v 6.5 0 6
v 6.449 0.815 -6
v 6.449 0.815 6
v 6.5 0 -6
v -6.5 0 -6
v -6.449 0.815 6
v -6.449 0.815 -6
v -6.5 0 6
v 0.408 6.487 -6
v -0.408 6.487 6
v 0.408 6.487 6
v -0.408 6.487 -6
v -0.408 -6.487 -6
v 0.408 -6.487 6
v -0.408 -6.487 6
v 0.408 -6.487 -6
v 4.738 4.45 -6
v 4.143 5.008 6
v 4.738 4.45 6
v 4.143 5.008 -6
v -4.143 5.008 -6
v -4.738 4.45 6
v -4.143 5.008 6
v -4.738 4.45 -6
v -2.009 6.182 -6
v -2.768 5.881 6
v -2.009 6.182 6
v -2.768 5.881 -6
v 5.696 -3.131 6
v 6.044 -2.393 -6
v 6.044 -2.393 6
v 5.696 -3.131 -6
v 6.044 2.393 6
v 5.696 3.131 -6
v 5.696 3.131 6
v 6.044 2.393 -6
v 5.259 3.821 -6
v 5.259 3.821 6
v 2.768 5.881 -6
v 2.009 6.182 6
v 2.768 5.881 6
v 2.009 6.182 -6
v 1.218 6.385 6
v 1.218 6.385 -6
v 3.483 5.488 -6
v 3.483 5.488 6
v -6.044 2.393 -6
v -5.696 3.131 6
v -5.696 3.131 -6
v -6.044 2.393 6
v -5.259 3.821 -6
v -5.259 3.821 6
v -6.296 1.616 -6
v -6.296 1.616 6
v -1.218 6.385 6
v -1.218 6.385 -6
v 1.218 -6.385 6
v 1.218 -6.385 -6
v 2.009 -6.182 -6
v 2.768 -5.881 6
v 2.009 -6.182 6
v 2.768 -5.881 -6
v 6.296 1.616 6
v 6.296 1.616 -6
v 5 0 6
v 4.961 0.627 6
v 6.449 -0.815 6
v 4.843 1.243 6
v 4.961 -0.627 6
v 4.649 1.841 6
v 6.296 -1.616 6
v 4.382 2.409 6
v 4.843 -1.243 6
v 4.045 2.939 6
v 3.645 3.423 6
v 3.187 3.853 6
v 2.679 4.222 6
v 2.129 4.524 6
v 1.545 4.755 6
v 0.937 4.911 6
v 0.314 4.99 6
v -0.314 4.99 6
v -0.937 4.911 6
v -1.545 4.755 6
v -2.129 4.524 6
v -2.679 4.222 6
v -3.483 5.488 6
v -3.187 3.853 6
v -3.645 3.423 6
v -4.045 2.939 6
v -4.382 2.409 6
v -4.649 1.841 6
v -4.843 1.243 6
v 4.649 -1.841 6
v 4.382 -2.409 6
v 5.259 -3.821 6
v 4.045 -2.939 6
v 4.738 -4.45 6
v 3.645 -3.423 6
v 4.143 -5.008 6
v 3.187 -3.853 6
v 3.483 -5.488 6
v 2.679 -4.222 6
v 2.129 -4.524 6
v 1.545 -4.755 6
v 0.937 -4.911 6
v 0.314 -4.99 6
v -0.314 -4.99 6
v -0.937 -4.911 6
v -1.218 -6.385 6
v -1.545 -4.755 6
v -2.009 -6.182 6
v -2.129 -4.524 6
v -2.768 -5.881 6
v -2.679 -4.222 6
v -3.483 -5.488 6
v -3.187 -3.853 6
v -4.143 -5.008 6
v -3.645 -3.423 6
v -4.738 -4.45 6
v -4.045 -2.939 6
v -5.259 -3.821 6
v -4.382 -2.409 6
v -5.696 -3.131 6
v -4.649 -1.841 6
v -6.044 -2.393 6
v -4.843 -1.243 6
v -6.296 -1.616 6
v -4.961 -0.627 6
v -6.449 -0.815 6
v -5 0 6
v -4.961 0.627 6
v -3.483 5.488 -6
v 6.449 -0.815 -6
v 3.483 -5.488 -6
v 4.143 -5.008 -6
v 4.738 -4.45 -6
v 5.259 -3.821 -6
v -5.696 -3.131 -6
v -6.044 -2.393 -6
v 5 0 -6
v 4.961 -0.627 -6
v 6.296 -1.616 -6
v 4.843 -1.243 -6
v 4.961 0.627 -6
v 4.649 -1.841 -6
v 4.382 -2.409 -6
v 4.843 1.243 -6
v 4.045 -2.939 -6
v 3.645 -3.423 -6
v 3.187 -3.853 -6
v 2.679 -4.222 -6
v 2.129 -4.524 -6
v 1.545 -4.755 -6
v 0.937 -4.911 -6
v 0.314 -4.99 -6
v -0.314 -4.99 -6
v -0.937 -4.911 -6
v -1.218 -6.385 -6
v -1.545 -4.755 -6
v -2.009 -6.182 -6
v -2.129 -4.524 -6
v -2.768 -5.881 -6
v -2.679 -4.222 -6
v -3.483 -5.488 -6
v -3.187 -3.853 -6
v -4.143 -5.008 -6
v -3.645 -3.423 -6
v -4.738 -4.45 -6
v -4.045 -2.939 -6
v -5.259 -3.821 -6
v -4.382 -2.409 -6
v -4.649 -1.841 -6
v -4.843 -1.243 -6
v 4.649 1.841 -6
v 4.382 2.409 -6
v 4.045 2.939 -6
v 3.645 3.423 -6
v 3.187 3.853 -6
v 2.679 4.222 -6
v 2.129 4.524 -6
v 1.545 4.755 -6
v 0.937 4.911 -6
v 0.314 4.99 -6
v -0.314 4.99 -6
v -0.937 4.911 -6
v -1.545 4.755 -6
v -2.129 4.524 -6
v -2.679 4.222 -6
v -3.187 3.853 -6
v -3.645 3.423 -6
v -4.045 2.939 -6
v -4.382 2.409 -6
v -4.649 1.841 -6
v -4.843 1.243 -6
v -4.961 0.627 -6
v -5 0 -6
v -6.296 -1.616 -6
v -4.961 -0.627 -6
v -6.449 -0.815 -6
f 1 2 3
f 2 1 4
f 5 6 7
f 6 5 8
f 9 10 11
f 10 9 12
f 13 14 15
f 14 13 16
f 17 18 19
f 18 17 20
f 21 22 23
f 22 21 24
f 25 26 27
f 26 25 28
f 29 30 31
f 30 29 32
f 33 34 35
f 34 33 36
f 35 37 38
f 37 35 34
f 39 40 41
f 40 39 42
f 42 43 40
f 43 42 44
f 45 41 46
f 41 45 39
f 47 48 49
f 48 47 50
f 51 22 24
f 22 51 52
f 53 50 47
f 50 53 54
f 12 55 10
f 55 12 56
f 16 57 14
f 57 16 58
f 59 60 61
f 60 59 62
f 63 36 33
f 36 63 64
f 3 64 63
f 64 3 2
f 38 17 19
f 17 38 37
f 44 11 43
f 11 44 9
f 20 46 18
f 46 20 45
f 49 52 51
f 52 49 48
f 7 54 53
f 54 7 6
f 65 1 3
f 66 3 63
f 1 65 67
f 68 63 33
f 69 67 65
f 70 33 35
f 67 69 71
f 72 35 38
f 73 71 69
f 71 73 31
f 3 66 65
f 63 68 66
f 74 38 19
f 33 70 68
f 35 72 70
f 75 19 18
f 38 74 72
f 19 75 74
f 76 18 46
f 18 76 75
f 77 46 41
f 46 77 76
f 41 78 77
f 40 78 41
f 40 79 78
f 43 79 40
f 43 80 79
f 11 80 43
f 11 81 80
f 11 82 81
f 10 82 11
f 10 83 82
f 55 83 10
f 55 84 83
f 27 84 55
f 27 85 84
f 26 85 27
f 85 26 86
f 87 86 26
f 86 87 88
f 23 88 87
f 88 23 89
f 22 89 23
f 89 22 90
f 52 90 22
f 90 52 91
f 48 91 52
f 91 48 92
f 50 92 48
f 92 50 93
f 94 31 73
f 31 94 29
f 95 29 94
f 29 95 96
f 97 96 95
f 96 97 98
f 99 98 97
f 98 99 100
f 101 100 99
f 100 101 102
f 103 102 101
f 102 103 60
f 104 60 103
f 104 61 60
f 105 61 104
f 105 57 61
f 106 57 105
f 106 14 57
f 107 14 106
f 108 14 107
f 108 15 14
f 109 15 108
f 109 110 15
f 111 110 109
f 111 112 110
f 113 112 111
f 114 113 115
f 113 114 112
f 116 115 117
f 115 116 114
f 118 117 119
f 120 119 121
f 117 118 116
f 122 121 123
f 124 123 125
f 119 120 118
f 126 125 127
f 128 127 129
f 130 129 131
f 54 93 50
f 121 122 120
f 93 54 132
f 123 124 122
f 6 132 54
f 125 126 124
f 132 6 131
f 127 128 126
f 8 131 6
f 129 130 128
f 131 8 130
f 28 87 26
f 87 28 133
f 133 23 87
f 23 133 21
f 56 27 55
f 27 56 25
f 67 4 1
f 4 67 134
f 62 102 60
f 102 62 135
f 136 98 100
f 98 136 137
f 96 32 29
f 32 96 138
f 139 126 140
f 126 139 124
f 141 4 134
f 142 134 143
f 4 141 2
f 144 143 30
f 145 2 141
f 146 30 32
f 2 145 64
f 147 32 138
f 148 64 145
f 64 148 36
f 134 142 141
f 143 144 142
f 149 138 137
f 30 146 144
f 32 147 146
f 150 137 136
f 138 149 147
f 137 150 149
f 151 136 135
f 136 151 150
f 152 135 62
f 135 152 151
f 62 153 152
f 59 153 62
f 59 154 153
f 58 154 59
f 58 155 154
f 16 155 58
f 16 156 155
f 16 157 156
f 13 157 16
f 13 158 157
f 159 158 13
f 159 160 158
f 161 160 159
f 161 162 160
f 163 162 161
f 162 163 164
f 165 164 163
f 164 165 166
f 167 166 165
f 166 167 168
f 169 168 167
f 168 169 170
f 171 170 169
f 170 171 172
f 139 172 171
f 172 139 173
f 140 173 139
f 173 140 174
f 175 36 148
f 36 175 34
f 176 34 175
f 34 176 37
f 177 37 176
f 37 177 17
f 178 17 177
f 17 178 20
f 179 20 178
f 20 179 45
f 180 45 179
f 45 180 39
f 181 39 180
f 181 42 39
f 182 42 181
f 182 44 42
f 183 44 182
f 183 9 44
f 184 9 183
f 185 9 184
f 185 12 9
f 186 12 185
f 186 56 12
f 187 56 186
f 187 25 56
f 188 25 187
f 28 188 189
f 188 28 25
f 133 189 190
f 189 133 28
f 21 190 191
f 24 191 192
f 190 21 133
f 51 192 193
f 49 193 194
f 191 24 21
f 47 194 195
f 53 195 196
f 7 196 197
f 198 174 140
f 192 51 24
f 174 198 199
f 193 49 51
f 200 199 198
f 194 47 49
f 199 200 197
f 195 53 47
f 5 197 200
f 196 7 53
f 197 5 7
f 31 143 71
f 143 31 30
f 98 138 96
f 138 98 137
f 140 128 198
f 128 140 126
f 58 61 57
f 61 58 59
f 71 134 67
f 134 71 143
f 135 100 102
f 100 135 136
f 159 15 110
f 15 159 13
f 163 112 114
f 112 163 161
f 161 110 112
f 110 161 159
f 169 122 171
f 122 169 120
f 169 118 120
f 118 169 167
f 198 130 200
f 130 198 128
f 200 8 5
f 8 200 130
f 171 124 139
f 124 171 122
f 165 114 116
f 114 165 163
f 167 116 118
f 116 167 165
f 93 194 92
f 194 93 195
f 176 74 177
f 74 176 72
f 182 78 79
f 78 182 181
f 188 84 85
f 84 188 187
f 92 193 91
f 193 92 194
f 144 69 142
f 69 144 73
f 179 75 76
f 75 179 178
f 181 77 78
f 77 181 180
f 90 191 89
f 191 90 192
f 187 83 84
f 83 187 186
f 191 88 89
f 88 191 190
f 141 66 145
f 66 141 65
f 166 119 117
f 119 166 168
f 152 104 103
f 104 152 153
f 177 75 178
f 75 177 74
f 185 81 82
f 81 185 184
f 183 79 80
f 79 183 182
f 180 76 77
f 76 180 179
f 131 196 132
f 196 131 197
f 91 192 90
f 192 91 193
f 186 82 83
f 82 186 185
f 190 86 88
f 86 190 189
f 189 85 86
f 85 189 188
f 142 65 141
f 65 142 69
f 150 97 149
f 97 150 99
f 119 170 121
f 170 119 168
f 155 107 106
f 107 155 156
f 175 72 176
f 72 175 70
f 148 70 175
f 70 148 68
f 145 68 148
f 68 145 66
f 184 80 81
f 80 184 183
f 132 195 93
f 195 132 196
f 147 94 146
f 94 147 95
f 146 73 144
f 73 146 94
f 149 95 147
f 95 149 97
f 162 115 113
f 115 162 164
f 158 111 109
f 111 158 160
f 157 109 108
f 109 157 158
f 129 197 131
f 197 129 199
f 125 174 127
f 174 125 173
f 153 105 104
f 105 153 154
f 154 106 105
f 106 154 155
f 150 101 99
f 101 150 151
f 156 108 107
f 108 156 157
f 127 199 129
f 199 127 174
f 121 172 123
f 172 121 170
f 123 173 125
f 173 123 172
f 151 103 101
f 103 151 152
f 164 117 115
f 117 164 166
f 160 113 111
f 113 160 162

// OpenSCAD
$fn = 50;


difference() {
	union() {
		translate(v = [0, 0, -6.0000000000]) {
			cylinder(h = 12, r = 6.5000000000);
		}
	}
	union() {
		translate(v = [0, 0, -100.0000000000]) {
			cylinder(h = 200, r = 5.0000000000);
		}
	}
}
